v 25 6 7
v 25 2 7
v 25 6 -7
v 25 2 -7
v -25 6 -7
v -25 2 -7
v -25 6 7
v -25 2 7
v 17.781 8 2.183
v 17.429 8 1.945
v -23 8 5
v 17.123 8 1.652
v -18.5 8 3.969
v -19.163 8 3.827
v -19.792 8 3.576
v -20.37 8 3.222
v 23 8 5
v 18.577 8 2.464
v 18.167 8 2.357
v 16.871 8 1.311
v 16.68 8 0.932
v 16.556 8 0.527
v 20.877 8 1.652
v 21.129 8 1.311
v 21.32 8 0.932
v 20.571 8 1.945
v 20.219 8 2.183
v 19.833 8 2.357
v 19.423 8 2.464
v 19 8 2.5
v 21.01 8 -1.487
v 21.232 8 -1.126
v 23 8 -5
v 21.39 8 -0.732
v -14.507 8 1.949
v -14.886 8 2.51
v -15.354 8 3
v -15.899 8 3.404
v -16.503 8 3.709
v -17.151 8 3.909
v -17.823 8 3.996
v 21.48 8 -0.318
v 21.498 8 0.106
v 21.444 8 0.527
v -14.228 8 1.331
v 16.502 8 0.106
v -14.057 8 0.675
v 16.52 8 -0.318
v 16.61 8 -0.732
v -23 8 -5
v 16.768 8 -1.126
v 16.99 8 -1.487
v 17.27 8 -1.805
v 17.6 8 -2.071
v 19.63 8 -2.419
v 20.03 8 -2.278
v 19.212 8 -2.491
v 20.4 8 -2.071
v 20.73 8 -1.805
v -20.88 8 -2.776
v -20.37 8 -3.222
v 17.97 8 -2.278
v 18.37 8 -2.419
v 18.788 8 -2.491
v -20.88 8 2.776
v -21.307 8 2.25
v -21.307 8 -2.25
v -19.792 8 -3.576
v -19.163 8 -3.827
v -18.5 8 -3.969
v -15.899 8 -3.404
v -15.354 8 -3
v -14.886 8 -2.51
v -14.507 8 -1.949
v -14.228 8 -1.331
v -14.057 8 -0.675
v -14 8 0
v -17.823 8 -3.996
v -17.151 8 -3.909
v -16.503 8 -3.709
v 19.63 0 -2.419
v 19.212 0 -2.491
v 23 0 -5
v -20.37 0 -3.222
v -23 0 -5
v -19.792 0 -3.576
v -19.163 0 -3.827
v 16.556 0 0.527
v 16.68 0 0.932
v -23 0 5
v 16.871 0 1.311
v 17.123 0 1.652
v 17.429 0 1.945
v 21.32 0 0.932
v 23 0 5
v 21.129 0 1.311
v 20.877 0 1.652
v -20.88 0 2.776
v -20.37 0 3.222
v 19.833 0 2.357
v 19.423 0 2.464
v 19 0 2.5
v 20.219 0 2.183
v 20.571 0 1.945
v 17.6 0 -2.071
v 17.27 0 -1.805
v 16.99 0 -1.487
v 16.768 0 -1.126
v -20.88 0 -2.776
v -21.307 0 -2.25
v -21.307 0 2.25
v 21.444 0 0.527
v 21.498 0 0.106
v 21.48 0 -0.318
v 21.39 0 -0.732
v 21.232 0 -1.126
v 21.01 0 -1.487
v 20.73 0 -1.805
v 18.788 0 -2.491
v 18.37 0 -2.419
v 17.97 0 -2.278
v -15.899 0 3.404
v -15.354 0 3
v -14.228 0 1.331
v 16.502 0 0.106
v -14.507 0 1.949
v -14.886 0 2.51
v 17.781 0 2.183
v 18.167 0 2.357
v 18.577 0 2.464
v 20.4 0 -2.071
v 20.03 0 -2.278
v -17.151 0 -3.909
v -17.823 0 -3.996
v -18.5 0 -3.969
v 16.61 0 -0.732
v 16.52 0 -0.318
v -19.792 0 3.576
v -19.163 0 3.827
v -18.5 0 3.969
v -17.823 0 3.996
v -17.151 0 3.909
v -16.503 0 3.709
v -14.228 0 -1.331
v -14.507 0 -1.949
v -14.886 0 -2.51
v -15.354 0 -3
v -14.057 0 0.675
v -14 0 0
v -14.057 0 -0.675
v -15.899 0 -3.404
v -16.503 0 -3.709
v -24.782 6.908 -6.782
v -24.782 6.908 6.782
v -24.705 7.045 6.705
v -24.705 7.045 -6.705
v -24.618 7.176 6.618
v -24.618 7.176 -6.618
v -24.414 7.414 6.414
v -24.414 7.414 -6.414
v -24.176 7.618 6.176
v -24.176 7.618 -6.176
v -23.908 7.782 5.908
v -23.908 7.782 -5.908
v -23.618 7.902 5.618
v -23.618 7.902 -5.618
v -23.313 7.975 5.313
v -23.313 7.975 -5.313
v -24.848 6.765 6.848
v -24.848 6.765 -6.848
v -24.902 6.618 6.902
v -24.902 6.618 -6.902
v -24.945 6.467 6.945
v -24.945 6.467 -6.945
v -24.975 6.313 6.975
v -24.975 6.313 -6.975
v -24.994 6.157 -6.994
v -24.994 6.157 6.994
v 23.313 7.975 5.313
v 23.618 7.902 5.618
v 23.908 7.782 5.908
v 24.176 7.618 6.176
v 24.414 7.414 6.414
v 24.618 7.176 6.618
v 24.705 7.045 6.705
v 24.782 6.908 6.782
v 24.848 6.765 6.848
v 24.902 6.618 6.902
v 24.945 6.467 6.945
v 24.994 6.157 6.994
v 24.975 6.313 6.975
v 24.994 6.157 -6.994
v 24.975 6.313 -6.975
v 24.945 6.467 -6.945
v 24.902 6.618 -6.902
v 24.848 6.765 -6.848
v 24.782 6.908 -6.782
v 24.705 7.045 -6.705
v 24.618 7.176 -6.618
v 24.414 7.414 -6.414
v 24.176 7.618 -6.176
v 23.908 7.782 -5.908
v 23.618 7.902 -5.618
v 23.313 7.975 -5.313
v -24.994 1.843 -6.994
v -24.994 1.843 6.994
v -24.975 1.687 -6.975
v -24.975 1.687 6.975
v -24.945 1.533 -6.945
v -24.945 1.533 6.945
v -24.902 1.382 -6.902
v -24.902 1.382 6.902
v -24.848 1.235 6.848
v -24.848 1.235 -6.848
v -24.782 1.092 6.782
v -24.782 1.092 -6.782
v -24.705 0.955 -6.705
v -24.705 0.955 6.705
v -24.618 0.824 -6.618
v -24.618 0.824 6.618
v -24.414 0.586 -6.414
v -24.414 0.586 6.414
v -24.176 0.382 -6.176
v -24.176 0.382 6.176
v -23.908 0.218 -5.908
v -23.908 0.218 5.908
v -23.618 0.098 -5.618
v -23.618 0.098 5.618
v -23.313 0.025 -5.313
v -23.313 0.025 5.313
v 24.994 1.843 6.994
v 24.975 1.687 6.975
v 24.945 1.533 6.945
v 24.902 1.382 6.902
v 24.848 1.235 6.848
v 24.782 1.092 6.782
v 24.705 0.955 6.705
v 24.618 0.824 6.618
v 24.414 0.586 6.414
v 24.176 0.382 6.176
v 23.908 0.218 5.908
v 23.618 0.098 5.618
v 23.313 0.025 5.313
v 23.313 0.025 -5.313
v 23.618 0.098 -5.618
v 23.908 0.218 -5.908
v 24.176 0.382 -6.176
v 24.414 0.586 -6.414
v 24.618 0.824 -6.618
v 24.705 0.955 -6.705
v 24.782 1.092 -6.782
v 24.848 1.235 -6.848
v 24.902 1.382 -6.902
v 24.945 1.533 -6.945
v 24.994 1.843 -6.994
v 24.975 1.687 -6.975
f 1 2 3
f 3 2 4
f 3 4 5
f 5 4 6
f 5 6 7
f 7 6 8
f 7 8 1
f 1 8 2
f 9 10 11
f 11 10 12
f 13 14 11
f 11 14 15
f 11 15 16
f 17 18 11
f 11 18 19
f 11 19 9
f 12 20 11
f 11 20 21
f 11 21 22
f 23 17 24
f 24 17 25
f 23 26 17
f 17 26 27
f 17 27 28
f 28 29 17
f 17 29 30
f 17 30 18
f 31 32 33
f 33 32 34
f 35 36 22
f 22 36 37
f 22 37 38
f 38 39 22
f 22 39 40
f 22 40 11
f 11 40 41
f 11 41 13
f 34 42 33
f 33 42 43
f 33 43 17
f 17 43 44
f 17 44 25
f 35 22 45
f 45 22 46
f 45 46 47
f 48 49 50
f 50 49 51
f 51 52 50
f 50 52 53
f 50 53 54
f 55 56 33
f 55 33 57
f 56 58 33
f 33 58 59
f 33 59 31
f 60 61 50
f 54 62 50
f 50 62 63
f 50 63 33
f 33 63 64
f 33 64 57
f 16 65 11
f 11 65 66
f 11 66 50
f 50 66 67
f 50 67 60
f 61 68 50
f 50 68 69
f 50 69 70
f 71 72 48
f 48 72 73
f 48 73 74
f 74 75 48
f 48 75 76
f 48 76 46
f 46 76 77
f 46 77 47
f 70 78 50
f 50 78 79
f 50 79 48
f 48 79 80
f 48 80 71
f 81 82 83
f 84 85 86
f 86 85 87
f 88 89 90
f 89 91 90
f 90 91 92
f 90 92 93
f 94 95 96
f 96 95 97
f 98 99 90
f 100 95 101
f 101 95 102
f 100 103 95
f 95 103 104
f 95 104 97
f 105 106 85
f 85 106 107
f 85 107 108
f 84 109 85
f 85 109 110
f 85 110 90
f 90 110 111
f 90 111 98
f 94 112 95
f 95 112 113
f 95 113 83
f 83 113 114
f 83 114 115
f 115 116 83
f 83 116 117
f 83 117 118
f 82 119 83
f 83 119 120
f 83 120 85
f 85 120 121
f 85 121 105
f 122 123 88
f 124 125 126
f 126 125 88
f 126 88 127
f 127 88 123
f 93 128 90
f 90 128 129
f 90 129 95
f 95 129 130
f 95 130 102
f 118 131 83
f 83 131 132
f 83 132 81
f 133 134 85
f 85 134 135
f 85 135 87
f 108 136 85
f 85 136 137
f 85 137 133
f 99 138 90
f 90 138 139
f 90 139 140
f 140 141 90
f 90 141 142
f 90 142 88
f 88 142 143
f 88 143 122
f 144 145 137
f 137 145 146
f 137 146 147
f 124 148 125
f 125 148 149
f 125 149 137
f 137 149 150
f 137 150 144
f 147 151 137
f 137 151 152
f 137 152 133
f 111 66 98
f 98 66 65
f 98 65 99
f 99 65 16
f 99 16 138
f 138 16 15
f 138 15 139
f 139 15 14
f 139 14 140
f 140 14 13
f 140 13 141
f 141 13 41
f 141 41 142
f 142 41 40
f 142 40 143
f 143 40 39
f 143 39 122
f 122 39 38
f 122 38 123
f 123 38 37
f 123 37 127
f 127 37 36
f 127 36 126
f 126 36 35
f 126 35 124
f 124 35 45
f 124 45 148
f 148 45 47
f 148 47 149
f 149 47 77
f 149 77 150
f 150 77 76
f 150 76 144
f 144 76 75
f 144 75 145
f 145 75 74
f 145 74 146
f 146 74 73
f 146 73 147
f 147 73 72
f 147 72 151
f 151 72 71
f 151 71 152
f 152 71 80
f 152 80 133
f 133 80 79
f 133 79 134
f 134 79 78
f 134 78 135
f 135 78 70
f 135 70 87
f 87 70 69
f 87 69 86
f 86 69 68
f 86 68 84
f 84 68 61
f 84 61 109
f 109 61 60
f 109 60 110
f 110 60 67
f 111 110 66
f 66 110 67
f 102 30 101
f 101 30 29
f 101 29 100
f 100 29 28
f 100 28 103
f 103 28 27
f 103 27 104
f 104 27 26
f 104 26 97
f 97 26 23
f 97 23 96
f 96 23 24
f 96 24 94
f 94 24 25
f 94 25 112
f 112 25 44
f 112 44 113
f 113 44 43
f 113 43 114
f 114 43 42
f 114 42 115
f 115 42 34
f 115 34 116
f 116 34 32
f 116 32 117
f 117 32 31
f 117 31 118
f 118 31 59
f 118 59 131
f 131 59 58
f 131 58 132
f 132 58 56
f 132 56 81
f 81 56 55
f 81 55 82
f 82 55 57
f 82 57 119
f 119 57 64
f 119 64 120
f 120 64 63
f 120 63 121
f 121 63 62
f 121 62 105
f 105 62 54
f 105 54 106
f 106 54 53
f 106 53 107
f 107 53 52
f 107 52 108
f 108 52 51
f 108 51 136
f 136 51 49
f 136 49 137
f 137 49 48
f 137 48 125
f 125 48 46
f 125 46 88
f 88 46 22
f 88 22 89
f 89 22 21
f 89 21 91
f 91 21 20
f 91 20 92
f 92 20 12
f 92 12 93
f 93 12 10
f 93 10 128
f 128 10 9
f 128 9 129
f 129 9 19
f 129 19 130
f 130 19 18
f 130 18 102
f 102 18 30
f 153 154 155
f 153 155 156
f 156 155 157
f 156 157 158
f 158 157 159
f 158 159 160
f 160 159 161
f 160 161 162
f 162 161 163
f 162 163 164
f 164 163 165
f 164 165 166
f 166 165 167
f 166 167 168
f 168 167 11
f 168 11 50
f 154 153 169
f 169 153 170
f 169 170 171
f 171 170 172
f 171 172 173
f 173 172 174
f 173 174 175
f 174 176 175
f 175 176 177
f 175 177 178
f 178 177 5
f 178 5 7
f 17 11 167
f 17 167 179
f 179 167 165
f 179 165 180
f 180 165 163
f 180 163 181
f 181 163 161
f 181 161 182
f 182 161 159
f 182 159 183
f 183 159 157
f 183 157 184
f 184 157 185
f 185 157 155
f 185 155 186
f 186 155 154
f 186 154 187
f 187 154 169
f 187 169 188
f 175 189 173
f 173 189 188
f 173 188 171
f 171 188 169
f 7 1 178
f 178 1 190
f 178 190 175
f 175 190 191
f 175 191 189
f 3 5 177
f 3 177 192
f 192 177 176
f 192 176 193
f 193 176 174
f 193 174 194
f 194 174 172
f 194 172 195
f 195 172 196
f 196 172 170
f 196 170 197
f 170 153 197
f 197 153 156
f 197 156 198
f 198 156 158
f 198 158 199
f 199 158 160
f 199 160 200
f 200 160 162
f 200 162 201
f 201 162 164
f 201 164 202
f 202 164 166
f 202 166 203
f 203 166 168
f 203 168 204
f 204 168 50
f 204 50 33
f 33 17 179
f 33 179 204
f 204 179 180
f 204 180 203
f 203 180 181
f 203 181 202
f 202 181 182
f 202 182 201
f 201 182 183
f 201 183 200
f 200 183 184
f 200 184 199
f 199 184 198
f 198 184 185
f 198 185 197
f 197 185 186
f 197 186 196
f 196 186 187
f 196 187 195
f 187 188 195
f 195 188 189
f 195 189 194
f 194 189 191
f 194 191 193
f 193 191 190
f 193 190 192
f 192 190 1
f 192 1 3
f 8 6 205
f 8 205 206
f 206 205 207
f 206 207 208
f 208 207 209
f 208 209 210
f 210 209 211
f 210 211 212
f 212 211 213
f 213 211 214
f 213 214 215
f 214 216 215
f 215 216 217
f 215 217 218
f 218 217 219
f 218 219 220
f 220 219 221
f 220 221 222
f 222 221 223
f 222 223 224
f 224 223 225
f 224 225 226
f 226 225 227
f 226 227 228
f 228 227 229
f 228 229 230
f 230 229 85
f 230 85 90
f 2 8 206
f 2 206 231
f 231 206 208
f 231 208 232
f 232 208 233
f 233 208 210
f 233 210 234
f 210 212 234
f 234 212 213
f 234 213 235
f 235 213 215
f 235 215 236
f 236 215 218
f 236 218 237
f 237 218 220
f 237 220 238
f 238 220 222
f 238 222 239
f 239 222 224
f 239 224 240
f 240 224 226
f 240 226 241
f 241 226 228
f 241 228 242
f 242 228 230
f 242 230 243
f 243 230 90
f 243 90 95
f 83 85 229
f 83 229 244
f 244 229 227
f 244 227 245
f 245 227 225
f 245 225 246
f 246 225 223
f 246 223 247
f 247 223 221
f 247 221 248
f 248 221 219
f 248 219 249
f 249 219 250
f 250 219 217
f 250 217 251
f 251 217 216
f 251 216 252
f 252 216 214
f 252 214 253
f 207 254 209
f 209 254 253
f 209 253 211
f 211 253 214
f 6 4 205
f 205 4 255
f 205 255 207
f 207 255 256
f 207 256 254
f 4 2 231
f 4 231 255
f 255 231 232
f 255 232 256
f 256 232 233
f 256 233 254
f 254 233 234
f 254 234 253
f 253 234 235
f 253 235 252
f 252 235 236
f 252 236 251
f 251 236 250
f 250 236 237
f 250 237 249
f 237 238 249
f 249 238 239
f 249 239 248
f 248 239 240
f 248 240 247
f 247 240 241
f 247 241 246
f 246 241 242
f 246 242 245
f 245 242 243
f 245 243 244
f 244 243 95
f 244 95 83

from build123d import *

# Parameters (mm, degrees)
SKETCH2_W           = 50
SKETCH2_H           = 14
BOSS_EXTRUDE1_DEPTH = 8
SKETCH3_R           = 2.5
CUT_EXTRUDE2_DEPTH  = 9
FILLET5_R           = 2


with BuildPart() as part:
    # Sketch2 → Boss-Extrude1 (new body)
    with BuildSketch(Plane(origin=(0, 0, 0), x_dir=(1, 0, 0), z_dir=(0, 1, 0))):
        Rectangle(SKETCH2_W, SKETCH2_H)
    extrude(amount=BOSS_EXTRUDE1_DEPTH)

    # Sketch3 → Cut-Extrude2 (cut, symmetric)
    with BuildSketch(Plane(origin=(0, 8, 0), x_dir=(1, 0, 0), z_dir=(0, 1, 0))):
        with Locations((19, 0)):
            Circle(SKETCH3_R)
        with BuildLine():
            Line((-21.307189139, 2.25), (-21.307189139, -2.25))
            ThreePointArc((-21.307189139, -2.25), (-14, 0), (-21.307189139, 2.25))
        make_face()
    extrude(amount=CUT_EXTRUDE2_DEPTH, both=True, mode=Mode.SUBTRACT)

    # Fillet5
    fillet5_edges = [part.edges().sort_by_distance(p)[0] for p in [
        (-25, 8, 0),
        (0, 8, 7),
        (25, 8, 0),
        (0, 0, 7),
        (-25, 0, 0),
        (0, 0, -7),
        (25, 0, 0),
        (0, 8, -7),
    ]]
    fillet(fillet5_edges, radius=FILLET5_R)


solid = part.part
